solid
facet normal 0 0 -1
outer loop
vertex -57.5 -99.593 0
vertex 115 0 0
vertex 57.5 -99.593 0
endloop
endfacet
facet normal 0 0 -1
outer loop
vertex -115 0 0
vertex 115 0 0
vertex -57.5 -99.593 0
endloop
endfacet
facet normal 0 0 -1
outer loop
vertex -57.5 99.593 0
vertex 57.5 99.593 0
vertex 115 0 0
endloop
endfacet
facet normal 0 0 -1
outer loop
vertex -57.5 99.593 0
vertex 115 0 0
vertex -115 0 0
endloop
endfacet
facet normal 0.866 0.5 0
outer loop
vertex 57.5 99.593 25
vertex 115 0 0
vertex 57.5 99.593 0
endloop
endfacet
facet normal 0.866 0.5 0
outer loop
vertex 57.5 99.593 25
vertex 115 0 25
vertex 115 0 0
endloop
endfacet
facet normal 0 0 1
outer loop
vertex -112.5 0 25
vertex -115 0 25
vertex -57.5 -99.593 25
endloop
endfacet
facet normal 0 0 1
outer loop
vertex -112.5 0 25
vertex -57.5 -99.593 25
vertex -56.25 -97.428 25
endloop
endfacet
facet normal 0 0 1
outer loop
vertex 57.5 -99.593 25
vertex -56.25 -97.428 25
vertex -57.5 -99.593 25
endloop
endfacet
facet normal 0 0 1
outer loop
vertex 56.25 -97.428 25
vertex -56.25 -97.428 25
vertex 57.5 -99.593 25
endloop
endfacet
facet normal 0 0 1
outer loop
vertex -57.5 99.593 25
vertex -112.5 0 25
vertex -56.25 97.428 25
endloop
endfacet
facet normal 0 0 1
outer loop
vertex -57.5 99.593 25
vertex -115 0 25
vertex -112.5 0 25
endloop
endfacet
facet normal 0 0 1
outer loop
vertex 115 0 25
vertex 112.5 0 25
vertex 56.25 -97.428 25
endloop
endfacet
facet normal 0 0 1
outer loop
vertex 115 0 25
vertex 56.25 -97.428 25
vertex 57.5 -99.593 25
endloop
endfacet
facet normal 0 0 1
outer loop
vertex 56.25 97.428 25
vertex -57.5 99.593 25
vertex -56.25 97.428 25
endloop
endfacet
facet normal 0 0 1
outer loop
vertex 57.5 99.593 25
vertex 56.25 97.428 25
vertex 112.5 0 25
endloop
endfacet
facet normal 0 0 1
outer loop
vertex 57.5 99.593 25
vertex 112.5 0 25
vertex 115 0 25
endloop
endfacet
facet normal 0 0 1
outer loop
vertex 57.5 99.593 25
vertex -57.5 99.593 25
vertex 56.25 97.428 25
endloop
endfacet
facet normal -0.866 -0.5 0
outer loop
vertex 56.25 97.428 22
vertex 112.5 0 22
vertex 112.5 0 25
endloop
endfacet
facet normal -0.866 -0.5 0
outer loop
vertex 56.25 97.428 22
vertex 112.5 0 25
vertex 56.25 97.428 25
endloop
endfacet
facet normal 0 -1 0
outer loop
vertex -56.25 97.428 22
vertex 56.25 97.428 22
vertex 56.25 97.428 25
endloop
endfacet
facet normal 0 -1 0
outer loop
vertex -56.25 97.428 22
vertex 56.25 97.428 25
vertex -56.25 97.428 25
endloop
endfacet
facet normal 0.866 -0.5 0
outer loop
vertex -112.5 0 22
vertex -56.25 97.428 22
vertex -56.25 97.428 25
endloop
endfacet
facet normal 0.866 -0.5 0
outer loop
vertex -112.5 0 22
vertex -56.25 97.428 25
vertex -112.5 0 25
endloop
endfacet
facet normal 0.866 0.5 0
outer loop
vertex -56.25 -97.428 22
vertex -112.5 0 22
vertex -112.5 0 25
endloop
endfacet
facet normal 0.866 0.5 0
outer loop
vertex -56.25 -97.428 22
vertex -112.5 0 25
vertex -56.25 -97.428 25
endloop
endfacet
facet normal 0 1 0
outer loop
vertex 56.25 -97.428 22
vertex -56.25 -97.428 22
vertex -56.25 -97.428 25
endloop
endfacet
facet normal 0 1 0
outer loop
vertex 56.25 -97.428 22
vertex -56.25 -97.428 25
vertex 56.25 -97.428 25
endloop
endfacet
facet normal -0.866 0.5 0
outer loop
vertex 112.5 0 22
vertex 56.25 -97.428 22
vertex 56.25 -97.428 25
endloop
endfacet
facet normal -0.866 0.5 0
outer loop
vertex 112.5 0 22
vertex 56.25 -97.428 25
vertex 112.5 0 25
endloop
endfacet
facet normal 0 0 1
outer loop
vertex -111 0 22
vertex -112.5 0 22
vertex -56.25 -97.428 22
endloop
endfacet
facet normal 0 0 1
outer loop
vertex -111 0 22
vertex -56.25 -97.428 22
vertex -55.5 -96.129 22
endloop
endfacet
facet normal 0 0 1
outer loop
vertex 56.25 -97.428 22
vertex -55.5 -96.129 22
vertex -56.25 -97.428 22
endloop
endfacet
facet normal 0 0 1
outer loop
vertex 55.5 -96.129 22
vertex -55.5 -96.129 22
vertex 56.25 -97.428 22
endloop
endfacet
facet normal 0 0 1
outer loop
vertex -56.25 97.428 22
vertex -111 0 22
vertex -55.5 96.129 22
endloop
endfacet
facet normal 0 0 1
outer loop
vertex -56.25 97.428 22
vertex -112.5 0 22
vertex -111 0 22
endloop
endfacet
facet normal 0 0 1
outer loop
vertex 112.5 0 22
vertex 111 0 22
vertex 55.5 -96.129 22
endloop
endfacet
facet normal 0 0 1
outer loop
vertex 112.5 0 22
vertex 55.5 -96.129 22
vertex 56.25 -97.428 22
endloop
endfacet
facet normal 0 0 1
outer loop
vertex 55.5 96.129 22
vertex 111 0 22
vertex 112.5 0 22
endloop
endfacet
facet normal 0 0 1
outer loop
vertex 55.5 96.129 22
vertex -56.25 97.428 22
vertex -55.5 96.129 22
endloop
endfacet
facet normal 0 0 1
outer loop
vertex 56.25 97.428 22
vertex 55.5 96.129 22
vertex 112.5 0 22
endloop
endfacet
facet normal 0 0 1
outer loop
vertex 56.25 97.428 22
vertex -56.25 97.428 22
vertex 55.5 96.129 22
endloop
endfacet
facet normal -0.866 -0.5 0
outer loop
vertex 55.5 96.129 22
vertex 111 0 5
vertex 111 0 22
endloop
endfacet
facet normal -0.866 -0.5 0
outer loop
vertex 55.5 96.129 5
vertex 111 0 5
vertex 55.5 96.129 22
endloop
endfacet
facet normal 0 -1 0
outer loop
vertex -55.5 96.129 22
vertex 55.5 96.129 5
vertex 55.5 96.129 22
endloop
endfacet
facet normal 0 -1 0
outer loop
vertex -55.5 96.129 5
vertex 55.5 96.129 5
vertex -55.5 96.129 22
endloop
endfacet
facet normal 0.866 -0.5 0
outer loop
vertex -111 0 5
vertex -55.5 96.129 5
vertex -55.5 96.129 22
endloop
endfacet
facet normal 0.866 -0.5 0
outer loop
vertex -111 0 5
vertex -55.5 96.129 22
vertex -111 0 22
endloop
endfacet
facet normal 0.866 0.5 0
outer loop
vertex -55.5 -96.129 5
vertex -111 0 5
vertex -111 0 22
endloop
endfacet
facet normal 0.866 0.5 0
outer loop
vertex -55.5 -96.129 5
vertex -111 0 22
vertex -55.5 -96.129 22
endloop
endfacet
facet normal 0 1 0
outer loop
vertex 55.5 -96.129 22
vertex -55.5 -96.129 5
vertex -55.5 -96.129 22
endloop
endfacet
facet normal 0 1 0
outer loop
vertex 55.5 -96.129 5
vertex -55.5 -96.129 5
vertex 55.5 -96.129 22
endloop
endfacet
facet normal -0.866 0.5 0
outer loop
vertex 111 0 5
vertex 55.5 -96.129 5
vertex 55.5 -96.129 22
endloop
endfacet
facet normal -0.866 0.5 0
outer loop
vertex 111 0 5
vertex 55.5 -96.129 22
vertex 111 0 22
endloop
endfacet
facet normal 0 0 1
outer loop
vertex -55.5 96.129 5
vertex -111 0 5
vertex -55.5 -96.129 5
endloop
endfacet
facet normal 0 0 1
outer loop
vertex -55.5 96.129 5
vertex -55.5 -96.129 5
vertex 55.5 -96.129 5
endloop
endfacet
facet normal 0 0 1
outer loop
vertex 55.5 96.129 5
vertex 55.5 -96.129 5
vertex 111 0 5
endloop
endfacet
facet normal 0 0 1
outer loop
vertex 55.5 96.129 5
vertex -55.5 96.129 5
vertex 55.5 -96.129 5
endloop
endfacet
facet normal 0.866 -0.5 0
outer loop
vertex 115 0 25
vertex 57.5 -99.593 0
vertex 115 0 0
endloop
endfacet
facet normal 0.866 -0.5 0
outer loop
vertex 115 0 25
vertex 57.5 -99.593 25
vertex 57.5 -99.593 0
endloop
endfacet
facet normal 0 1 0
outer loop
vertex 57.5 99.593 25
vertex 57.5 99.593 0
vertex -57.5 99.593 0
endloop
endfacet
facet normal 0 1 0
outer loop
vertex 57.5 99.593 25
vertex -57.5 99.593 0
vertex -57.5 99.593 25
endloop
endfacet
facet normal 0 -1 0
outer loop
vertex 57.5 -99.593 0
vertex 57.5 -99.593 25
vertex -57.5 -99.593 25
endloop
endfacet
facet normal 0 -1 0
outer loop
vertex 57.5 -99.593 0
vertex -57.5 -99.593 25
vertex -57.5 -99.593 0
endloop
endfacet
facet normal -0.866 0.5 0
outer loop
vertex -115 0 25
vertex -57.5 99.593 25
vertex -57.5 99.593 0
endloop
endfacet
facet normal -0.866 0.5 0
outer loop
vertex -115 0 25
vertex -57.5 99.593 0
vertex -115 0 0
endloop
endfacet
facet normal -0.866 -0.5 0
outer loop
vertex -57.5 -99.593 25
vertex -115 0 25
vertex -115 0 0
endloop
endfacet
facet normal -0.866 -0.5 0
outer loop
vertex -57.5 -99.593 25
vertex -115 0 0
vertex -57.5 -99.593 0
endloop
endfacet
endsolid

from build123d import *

# Parameters (mm, degrees)
EXTRUDE_DEPTH    = 5
EXTRUDE001_DEPTH = 25
EXTRUDE002_DEPTH = 22


with BuildPart() as extrude_body:
    # Sketch → Extrude (new body)
    with BuildSketch(Plane.XY):
        Polygon((115, 0), (57.5, 99.592921), (-57.5, 99.592921), (-115, 0), (-57.5, -99.592921), (57.5, -99.592921), align=None)
    extrude(amount=EXTRUDE_DEPTH)


with BuildPart() as extrude001:
    # Sketch001 (on Sketch) → Extrude001 (new body)
    with BuildSketch(Plane.XY):
        Polygon((115, 0), (57.5, 99.592921), (-57.5, 99.592921), (-115, 0), (-57.5, -99.592921), (57.5, -99.592921), align=None)
        Polygon((112.5, 0), (56.25, 97.427858), (-56.25, 97.427858), (-112.5, 0), (-56.25, -97.427858), (56.25, -97.427858), align=None, mode=Mode.SUBTRACT)
    extrude(amount=EXTRUDE001_DEPTH)


with BuildPart() as fusion:
    # Sketch002 (on Sketch) → Extrude002 (new body)
    with BuildSketch(Plane.XY):
        Polygon((112.5, 0), (56.25, 97.427858), (-56.25, 97.427858), (-112.5, 0), (-56.25, -97.427858), (56.25, -97.427858), align=None)
        Polygon((111, 0), (55.5, 96.12882), (-55.5, 96.12882), (-111, 0), (-55.5, -96.12882), (55.5, -96.12882), align=None, mode=Mode.SUBTRACT)
    extrude(amount=EXTRUDE002_DEPTH)

    # Fusion: union Extrude body, Extrude001
    add(extrude_body.part)
    add(extrude001.part)


solid = fusion.part
